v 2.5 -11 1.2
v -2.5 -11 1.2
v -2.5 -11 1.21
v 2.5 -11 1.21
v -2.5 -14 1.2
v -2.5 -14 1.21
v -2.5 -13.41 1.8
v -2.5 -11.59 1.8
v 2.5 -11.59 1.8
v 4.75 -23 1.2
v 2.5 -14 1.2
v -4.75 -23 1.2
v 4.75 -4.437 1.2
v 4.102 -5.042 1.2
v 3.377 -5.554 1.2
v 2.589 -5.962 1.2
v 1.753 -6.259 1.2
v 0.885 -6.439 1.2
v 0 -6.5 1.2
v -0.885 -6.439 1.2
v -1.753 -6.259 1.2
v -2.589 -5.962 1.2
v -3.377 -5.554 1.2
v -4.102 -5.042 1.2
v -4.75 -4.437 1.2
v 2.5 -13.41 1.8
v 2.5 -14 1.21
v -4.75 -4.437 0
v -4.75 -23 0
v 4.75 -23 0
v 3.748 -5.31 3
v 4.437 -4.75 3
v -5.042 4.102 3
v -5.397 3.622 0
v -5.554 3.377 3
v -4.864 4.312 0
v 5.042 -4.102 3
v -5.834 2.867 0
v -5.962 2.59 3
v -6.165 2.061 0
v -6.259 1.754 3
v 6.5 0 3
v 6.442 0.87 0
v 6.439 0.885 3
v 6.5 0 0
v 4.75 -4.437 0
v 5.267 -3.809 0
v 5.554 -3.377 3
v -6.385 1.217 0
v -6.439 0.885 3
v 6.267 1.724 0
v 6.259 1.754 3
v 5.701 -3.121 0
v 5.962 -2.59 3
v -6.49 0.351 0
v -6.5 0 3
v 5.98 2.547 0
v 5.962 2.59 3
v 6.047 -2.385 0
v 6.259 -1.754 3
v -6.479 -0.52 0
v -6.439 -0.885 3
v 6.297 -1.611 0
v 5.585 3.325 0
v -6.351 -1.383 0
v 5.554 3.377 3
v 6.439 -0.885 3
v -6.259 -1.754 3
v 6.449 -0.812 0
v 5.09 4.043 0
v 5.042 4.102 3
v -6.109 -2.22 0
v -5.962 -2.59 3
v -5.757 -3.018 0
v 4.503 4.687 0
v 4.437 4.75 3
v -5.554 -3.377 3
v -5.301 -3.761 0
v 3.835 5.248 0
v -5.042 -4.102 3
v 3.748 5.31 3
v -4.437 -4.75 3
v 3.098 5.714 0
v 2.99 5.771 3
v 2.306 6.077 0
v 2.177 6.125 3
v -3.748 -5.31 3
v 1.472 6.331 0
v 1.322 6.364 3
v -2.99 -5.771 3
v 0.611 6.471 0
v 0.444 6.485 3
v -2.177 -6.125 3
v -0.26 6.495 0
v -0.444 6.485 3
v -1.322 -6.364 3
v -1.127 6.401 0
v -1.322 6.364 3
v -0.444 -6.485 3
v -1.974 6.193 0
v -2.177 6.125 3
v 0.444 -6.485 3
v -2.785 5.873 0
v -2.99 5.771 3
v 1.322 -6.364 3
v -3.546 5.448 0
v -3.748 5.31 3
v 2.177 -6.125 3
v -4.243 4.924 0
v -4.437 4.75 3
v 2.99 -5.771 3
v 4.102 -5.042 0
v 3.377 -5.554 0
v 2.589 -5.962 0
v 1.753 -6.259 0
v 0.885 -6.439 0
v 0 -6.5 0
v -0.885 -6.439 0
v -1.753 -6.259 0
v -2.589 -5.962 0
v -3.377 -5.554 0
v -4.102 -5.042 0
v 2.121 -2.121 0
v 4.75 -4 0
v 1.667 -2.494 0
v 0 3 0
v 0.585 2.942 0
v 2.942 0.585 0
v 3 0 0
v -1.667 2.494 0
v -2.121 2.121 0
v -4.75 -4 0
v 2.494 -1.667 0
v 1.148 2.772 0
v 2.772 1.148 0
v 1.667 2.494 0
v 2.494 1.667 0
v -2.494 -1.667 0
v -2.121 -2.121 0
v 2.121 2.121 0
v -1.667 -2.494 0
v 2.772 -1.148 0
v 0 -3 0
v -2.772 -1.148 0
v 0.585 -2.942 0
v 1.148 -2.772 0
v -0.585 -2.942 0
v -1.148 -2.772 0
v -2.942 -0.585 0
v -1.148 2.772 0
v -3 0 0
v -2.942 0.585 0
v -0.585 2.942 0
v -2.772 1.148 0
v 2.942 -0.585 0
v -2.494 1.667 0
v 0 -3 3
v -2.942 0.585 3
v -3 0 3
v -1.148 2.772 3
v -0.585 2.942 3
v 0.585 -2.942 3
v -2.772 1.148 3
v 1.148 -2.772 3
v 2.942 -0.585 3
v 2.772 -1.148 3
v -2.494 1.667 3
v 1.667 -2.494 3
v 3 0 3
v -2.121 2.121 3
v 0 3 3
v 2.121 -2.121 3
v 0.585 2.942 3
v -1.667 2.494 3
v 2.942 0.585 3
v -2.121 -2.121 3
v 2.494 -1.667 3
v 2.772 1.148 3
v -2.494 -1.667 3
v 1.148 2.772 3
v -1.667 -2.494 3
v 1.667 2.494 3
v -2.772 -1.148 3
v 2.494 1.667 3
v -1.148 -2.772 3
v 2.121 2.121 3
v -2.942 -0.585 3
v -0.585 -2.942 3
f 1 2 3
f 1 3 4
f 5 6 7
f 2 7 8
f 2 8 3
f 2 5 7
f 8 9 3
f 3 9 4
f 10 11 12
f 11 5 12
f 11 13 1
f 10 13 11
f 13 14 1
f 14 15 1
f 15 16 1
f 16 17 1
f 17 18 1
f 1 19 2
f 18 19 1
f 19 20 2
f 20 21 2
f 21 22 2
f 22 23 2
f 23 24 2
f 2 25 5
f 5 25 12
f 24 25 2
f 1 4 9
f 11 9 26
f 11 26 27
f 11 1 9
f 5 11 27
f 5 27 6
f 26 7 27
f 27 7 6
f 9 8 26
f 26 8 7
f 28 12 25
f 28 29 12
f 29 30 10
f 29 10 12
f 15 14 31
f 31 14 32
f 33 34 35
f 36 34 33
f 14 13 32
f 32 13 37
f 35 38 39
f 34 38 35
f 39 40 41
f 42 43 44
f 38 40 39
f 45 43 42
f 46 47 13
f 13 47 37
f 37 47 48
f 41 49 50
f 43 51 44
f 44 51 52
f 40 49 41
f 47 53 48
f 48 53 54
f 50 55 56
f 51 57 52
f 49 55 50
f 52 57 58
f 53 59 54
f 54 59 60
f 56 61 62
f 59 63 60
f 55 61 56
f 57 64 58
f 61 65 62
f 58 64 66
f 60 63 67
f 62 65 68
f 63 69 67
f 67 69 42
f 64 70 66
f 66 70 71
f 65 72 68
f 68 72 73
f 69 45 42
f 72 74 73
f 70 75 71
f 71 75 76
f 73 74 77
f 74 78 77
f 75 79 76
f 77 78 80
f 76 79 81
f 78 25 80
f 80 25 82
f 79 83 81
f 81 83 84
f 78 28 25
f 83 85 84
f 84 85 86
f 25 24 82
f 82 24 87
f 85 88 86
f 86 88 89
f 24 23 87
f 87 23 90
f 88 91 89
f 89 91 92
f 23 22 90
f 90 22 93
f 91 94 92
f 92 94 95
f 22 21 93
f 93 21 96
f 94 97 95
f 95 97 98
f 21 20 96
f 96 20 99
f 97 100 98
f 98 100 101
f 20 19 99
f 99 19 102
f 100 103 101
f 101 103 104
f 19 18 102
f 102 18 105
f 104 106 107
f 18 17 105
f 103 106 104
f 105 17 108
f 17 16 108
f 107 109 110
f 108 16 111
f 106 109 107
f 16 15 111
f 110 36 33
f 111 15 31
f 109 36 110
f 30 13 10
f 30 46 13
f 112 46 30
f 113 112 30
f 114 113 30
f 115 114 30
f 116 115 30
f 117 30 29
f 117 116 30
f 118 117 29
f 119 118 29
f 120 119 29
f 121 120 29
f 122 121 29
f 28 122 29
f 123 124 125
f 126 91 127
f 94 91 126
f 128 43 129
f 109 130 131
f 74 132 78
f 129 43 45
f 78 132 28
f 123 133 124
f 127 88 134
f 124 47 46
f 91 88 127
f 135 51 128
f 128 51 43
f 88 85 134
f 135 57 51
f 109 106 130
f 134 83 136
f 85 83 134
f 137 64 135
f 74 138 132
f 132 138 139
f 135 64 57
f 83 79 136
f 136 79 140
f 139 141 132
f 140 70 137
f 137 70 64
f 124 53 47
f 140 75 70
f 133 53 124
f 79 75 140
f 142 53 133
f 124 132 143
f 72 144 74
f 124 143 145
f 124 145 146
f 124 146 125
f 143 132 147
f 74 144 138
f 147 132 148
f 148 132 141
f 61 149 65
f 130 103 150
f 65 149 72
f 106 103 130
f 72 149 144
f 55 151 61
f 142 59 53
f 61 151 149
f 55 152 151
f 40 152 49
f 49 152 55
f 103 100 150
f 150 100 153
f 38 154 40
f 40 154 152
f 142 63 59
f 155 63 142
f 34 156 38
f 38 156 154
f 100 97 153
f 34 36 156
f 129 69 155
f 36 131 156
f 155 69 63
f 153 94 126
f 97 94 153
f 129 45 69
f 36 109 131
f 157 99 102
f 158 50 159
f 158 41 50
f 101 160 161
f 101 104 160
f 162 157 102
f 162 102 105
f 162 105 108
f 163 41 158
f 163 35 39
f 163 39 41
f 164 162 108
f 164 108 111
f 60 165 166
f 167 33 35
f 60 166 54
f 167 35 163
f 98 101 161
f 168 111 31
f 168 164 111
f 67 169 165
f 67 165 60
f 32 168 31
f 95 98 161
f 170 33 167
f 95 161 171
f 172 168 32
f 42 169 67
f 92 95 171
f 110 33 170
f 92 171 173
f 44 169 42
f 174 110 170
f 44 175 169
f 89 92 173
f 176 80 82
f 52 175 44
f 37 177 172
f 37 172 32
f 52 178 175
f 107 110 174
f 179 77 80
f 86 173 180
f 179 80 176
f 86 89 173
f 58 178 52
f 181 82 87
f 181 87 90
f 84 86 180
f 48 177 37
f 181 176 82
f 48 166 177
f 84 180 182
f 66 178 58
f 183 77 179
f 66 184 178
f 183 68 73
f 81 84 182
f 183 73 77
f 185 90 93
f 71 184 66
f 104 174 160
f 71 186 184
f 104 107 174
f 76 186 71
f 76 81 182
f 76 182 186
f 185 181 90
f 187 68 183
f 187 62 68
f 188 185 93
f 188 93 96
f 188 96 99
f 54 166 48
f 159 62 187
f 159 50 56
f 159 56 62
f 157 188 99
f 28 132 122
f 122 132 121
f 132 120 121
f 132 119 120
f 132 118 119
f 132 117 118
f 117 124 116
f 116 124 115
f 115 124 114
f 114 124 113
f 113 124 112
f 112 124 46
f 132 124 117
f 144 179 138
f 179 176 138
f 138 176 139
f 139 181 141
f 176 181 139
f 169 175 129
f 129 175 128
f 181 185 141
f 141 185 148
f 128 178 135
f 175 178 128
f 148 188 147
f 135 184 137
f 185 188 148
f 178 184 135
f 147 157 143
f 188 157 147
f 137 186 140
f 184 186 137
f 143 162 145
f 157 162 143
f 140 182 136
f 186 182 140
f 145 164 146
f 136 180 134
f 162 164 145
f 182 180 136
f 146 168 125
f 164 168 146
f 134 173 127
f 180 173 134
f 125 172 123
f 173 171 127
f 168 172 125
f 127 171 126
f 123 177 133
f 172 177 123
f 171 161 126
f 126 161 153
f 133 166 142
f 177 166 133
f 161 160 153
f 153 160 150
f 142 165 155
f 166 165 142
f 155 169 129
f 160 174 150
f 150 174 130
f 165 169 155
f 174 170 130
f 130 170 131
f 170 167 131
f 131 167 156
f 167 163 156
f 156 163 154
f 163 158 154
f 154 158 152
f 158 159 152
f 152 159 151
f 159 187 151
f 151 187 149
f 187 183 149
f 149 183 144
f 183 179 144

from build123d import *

# Parameters (mm, degrees)
SKETCH_R     = 6.5
PAD_DEPTH    = 3
SKETCH001_R  = 3
POCKET_DEPTH = 3
SKETCH002_W  = 9.5
SKETCH002_H  = 19
PAD001_DEPTH = 1.2
SKETCH004_W  = 5
SKETCH004_H  = 3
PAD002_DEPTH = 0.6
CHAMFER_SIZE = 0.59


with BuildPart() as part:
    # Sketch → Pad (new body)
    with BuildSketch(Plane.XY):
        Circle(SKETCH_R)
    extrude(amount=PAD_DEPTH)

    # Sketch001 (on Face3 of Pad) → Pocket (cut)
    with BuildSketch(Plane.XY.offset(3)):
        Circle(SKETCH001_R)
    extrude(amount=-POCKET_DEPTH, mode=Mode.SUBTRACT)

    # Sketch002 → Pad001 (join)
    with BuildSketch(Plane.XY):
        with Locations((0, -13.5)):
            Rectangle(SKETCH002_W, SKETCH002_H)
    extrude(amount=PAD001_DEPTH)

    # Sketch004 (on Face4 of Pad001) → Pad002 (join)
    with BuildSketch(Plane.XY.offset(1.2)):
        with Locations((0, -12.5)):
            Rectangle(SKETCH004_W, SKETCH004_H)
    extrude(amount=PAD002_DEPTH)

    # Chamfer
    chamfer_edges = [part.edges().sort_by_distance(p)[0] for p in [
        (0, -14, 1.8),
        (0, -11, 1.8),
    ]]
    chamfer(chamfer_edges, length=CHAMFER_SIZE)


solid = part.part
